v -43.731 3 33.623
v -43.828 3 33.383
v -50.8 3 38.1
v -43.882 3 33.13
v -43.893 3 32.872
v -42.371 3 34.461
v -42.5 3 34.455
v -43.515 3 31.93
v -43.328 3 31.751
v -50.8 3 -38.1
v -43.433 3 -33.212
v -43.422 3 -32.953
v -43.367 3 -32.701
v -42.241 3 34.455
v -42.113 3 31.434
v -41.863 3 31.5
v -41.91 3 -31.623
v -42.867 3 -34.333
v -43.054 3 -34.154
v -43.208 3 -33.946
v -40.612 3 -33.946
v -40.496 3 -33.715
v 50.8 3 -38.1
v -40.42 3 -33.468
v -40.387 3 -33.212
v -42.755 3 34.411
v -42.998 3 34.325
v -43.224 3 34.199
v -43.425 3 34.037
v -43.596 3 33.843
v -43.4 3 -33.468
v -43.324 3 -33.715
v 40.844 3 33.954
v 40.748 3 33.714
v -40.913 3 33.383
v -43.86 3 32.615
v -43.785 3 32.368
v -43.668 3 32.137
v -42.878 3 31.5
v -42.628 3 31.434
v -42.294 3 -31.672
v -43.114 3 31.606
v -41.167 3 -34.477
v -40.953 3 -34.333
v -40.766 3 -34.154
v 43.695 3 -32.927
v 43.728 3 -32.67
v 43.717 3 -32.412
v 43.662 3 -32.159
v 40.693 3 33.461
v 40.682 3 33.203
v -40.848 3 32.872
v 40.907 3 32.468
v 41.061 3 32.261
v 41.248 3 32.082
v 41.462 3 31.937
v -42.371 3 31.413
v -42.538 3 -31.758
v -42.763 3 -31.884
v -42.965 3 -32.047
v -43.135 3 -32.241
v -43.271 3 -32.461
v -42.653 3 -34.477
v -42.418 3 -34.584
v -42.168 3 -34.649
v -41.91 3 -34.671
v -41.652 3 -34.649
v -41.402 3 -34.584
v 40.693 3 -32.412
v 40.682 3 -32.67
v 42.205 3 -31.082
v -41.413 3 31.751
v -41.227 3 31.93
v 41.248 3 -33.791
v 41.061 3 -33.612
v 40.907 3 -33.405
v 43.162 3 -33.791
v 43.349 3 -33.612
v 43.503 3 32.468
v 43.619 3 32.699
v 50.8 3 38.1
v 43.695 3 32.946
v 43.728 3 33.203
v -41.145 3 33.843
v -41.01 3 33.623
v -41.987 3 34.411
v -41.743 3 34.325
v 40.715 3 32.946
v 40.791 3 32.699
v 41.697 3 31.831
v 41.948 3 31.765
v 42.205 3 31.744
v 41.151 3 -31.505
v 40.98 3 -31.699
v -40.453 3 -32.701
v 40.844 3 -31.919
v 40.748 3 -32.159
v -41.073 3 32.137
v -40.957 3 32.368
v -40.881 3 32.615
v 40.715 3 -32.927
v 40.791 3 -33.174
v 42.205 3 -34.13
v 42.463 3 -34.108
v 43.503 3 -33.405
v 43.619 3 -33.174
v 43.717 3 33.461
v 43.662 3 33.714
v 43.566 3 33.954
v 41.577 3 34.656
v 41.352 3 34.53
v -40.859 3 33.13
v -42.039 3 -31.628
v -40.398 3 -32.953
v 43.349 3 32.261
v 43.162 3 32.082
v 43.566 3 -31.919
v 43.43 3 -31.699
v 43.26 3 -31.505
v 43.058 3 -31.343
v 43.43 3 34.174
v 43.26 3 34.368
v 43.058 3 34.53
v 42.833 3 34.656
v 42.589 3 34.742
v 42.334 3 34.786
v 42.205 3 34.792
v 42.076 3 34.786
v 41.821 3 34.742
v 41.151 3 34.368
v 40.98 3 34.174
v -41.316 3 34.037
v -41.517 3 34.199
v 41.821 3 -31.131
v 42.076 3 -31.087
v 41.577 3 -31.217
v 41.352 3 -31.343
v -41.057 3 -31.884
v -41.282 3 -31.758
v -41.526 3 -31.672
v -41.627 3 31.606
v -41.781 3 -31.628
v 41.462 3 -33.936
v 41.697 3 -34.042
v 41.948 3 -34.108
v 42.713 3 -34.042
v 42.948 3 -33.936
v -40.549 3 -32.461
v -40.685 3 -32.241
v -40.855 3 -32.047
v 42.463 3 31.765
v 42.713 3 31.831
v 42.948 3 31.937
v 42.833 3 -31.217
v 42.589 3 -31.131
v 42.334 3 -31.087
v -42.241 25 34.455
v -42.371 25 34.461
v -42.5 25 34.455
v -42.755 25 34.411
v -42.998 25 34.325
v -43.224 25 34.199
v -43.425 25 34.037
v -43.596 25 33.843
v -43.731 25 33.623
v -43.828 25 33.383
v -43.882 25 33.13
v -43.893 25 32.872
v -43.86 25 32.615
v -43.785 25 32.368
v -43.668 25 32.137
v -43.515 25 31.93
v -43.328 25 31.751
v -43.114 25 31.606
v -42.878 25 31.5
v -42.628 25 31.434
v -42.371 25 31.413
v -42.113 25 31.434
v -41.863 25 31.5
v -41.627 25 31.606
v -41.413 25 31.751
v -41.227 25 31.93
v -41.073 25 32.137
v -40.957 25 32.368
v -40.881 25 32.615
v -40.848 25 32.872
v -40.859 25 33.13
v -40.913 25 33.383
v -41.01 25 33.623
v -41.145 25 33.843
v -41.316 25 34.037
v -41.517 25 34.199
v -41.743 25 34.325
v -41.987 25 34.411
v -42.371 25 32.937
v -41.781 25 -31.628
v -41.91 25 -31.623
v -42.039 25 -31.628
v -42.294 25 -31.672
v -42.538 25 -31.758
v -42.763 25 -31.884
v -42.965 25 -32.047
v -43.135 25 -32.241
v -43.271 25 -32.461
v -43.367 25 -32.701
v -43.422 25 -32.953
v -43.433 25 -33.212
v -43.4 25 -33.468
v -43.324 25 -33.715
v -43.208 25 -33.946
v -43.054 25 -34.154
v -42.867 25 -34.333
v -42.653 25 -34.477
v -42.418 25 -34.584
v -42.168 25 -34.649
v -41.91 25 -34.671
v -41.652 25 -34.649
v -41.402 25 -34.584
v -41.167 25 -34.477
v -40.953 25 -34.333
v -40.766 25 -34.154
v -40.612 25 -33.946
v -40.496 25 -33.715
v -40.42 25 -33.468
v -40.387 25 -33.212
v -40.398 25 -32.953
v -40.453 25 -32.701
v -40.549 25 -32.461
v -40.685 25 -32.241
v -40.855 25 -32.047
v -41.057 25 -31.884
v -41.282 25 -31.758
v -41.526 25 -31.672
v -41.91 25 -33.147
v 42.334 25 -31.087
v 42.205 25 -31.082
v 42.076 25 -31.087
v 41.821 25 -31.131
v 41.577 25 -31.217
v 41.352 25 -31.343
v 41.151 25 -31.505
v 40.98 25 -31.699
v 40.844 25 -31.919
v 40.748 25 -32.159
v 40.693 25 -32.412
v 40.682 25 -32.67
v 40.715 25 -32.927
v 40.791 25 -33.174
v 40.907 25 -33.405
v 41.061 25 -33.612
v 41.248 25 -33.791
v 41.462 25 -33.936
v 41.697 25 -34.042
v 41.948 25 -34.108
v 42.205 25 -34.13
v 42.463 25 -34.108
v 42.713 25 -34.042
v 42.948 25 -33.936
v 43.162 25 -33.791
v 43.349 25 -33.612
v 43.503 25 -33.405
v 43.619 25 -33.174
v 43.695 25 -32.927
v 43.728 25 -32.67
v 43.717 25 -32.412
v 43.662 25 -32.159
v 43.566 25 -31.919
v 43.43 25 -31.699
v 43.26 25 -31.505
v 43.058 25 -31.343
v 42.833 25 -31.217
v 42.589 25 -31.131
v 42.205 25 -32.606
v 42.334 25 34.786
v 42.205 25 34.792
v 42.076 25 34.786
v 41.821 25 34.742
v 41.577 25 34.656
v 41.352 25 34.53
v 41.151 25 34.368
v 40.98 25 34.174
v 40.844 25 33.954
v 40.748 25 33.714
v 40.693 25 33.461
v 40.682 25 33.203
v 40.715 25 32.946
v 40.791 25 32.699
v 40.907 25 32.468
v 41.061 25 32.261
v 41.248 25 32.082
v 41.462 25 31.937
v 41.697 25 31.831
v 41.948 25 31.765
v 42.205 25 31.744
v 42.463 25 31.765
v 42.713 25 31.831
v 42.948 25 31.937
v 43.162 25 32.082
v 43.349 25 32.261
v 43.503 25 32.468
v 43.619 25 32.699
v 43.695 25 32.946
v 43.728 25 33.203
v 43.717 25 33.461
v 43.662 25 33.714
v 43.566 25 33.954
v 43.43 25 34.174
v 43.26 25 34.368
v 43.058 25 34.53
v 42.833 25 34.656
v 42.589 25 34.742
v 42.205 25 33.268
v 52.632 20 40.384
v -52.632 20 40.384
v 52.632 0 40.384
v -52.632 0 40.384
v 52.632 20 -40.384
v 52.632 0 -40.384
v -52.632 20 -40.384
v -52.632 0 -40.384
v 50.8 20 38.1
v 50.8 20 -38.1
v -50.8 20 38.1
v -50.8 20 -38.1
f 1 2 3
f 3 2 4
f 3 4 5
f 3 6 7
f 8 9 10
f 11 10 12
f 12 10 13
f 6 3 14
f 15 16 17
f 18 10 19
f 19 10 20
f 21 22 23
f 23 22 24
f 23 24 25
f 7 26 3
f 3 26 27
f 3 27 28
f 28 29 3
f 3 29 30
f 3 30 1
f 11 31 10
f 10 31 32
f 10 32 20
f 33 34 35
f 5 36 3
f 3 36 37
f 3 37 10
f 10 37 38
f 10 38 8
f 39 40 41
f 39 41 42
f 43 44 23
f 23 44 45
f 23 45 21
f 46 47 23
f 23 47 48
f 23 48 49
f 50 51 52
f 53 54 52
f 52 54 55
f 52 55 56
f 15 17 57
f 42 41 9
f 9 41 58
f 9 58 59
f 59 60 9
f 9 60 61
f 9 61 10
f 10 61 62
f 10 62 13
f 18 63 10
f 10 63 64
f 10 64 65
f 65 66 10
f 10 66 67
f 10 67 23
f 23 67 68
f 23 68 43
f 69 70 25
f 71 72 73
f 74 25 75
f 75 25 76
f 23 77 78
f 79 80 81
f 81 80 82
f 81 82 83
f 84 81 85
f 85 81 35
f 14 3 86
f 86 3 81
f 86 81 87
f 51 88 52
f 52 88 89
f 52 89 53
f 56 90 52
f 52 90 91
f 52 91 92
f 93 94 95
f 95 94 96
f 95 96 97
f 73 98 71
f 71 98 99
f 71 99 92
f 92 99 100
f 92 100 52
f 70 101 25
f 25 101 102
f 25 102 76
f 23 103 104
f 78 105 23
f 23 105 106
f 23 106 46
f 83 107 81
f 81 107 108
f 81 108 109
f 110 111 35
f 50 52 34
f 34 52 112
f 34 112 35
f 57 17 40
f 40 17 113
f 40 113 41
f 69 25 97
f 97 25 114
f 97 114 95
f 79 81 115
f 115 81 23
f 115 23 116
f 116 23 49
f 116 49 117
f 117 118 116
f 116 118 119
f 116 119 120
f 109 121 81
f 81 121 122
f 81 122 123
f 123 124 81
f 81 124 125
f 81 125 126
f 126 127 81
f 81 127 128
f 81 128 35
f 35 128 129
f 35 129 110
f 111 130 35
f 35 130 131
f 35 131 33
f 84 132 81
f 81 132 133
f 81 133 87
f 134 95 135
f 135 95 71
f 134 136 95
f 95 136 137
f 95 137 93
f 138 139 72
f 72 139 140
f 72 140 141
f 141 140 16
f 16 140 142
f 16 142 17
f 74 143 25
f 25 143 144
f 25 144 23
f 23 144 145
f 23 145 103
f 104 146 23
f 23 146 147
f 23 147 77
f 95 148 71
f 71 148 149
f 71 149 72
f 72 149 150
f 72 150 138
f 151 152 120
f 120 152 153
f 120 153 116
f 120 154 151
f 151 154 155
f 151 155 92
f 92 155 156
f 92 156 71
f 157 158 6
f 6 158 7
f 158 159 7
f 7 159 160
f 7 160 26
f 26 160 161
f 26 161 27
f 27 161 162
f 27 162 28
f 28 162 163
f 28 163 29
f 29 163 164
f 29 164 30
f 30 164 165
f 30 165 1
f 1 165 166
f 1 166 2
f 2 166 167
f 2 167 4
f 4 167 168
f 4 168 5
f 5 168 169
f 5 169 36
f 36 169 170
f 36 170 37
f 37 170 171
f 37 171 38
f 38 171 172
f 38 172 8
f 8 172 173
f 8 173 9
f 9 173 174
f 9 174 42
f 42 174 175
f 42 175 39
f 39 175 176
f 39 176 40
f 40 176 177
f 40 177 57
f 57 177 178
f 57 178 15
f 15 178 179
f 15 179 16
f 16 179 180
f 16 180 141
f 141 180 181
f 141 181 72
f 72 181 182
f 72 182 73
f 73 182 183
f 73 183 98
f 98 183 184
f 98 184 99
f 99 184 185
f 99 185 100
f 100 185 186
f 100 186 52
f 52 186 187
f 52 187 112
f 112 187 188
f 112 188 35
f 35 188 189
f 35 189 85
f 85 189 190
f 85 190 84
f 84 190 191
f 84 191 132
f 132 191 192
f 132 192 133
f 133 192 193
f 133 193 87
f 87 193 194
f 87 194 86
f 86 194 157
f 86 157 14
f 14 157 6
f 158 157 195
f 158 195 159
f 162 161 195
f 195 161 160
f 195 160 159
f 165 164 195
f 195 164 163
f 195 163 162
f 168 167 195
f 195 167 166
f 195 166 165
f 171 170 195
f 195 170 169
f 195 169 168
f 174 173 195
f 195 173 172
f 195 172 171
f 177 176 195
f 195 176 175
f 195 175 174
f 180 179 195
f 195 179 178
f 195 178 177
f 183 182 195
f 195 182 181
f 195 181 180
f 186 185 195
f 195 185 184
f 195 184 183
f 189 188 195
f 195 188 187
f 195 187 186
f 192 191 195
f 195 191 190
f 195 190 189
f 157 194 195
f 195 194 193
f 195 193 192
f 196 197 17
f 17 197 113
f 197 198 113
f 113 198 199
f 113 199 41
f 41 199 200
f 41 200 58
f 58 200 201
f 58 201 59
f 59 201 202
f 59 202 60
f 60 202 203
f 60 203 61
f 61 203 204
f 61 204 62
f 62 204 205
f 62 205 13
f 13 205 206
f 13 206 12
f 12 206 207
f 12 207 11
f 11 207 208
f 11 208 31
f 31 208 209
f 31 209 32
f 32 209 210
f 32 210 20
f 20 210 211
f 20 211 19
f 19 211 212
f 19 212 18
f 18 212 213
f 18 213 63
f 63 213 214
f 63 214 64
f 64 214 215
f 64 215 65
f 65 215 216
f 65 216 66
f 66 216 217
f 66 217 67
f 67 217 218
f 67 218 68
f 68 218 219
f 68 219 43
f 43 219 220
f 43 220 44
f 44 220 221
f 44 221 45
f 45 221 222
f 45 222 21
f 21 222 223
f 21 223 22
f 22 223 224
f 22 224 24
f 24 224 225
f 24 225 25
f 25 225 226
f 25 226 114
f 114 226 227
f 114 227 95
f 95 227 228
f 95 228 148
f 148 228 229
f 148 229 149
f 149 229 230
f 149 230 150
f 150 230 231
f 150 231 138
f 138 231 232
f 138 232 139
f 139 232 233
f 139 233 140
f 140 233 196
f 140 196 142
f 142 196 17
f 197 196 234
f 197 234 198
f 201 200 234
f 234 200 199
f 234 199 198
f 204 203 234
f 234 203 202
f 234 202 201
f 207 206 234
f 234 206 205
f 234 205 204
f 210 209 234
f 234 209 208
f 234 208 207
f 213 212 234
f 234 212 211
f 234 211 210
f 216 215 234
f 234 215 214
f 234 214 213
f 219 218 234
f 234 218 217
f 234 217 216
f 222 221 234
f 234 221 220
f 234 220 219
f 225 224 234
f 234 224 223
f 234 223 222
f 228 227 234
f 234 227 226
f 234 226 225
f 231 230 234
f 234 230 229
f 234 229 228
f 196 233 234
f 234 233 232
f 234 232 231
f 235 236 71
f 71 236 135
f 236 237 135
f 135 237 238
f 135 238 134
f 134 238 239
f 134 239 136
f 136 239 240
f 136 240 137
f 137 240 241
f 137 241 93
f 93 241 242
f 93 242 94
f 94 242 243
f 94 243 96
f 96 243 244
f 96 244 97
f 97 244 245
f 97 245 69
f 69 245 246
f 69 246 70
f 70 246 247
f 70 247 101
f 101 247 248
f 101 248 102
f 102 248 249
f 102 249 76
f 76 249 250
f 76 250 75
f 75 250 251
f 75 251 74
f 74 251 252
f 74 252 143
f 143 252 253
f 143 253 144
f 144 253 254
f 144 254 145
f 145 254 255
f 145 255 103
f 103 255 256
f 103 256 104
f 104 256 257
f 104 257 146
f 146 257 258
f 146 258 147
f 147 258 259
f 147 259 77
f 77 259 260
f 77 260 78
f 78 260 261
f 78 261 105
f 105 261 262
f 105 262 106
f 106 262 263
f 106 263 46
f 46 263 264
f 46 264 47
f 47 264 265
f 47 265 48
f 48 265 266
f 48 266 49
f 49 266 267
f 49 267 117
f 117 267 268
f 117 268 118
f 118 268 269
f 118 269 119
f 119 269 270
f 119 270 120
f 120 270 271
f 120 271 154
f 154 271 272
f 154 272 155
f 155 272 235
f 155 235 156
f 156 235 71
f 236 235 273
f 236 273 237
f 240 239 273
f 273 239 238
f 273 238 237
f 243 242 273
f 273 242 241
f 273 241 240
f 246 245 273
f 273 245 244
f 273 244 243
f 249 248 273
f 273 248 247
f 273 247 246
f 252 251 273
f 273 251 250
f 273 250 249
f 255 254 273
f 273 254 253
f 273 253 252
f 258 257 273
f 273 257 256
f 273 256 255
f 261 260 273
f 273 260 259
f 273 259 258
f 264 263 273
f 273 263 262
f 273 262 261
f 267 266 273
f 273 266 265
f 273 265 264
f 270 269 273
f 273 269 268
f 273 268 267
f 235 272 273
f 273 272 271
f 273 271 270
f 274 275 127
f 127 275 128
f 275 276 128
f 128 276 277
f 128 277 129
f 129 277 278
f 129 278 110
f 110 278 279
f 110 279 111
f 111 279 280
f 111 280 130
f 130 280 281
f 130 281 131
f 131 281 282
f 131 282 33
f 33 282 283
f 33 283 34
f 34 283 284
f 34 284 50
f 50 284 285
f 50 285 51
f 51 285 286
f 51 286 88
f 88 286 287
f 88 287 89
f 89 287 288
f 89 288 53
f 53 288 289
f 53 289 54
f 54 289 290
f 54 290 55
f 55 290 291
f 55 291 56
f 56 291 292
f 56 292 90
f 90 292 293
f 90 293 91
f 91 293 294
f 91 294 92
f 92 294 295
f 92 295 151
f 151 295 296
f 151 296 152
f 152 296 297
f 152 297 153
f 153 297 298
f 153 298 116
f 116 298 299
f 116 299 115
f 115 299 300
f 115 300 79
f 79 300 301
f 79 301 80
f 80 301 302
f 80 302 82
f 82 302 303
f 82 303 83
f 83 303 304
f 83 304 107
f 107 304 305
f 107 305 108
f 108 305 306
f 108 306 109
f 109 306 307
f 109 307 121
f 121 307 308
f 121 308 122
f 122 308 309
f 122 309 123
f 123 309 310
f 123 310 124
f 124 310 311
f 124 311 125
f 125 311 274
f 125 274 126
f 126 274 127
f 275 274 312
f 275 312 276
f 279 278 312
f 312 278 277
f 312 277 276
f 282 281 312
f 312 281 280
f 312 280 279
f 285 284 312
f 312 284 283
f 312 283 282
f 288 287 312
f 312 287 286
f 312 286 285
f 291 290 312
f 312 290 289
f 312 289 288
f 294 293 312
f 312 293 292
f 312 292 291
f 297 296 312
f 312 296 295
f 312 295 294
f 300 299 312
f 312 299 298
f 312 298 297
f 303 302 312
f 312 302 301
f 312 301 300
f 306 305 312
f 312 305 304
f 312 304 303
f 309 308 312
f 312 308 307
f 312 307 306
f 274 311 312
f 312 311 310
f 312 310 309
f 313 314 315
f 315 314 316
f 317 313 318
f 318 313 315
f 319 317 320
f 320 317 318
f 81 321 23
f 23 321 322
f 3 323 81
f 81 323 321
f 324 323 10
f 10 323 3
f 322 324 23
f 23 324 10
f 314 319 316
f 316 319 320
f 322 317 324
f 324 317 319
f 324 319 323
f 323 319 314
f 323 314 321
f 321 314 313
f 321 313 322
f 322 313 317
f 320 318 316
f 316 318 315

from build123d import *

# Parameters (mm, degrees)
SKETCH1_W           = 101.6
SKETCH1_H           = 76.2
SKETCH1_R           = 1.524
BOSS_EXTRUDE1_DEPTH = 3
SKETCH1_3_R         = 1.524
BOSS_EXTRUDE2_DEPTH = 25
SKETCH1_4_W         = 105.264465986
SKETCH1_4_H         = 80.768961322
SKETCH1_4_W_2       = 101.6
SKETCH1_4_H_2       = 76.2
BOSS_EXTRUDE3_DEPTH = 20


with BuildPart() as part:
    # Sketch1 → Boss-Extrude1 (new body)
    with BuildSketch(Plane(origin=(0, 0, 0), x_dir=(1, 0, 0), z_dir=(0, 1, 0))):
        Rectangle(SKETCH1_W, SKETCH1_H)
        with Locations((-42.370602661, -32.936523162)):
            Circle(SKETCH1_R, mode=Mode.SUBTRACT)
        with Locations((42.205092494, -33.267543495)):
            Circle(SKETCH1_R, mode=Mode.SUBTRACT)
        with Locations((-41.91, 33.147)):
            Circle(SKETCH1_R, mode=Mode.SUBTRACT)
        with Locations((42.205092494, 32.605502829)):
            Circle(SKETCH1_R, mode=Mode.SUBTRACT)
    extrude(amount=BOSS_EXTRUDE1_DEPTH)

    # Sketch1<3> → Boss-Extrude2 (add)
    with BuildSketch(Plane(origin=(0, 0, 0), x_dir=(1, 0, 0), z_dir=(0, 1, 0))):
        with Locations((-41.91, 33.147)):
            Circle(SKETCH1_3_R)
        with Locations((42.205092494, 32.605502829)):
            Circle(SKETCH1_3_R)
        with Locations((42.205092494, -33.267543495)):
            Circle(SKETCH1_3_R)
        with Locations((-42.370602661, -32.936523162)):
            Circle(SKETCH1_3_R)
    extrude(amount=BOSS_EXTRUDE2_DEPTH)

    # Sketch1<4> → Boss-Extrude3 (add)
    with BuildSketch(Plane(origin=(0, 0, 0), x_dir=(1, 0, 0), z_dir=(0, 1, 0))):
        Rectangle(SKETCH1_4_W, SKETCH1_4_H)
        Rectangle(SKETCH1_4_W_2, SKETCH1_4_H_2, mode=Mode.SUBTRACT)
    extrude(amount=BOSS_EXTRUDE3_DEPTH)


solid = part.part
